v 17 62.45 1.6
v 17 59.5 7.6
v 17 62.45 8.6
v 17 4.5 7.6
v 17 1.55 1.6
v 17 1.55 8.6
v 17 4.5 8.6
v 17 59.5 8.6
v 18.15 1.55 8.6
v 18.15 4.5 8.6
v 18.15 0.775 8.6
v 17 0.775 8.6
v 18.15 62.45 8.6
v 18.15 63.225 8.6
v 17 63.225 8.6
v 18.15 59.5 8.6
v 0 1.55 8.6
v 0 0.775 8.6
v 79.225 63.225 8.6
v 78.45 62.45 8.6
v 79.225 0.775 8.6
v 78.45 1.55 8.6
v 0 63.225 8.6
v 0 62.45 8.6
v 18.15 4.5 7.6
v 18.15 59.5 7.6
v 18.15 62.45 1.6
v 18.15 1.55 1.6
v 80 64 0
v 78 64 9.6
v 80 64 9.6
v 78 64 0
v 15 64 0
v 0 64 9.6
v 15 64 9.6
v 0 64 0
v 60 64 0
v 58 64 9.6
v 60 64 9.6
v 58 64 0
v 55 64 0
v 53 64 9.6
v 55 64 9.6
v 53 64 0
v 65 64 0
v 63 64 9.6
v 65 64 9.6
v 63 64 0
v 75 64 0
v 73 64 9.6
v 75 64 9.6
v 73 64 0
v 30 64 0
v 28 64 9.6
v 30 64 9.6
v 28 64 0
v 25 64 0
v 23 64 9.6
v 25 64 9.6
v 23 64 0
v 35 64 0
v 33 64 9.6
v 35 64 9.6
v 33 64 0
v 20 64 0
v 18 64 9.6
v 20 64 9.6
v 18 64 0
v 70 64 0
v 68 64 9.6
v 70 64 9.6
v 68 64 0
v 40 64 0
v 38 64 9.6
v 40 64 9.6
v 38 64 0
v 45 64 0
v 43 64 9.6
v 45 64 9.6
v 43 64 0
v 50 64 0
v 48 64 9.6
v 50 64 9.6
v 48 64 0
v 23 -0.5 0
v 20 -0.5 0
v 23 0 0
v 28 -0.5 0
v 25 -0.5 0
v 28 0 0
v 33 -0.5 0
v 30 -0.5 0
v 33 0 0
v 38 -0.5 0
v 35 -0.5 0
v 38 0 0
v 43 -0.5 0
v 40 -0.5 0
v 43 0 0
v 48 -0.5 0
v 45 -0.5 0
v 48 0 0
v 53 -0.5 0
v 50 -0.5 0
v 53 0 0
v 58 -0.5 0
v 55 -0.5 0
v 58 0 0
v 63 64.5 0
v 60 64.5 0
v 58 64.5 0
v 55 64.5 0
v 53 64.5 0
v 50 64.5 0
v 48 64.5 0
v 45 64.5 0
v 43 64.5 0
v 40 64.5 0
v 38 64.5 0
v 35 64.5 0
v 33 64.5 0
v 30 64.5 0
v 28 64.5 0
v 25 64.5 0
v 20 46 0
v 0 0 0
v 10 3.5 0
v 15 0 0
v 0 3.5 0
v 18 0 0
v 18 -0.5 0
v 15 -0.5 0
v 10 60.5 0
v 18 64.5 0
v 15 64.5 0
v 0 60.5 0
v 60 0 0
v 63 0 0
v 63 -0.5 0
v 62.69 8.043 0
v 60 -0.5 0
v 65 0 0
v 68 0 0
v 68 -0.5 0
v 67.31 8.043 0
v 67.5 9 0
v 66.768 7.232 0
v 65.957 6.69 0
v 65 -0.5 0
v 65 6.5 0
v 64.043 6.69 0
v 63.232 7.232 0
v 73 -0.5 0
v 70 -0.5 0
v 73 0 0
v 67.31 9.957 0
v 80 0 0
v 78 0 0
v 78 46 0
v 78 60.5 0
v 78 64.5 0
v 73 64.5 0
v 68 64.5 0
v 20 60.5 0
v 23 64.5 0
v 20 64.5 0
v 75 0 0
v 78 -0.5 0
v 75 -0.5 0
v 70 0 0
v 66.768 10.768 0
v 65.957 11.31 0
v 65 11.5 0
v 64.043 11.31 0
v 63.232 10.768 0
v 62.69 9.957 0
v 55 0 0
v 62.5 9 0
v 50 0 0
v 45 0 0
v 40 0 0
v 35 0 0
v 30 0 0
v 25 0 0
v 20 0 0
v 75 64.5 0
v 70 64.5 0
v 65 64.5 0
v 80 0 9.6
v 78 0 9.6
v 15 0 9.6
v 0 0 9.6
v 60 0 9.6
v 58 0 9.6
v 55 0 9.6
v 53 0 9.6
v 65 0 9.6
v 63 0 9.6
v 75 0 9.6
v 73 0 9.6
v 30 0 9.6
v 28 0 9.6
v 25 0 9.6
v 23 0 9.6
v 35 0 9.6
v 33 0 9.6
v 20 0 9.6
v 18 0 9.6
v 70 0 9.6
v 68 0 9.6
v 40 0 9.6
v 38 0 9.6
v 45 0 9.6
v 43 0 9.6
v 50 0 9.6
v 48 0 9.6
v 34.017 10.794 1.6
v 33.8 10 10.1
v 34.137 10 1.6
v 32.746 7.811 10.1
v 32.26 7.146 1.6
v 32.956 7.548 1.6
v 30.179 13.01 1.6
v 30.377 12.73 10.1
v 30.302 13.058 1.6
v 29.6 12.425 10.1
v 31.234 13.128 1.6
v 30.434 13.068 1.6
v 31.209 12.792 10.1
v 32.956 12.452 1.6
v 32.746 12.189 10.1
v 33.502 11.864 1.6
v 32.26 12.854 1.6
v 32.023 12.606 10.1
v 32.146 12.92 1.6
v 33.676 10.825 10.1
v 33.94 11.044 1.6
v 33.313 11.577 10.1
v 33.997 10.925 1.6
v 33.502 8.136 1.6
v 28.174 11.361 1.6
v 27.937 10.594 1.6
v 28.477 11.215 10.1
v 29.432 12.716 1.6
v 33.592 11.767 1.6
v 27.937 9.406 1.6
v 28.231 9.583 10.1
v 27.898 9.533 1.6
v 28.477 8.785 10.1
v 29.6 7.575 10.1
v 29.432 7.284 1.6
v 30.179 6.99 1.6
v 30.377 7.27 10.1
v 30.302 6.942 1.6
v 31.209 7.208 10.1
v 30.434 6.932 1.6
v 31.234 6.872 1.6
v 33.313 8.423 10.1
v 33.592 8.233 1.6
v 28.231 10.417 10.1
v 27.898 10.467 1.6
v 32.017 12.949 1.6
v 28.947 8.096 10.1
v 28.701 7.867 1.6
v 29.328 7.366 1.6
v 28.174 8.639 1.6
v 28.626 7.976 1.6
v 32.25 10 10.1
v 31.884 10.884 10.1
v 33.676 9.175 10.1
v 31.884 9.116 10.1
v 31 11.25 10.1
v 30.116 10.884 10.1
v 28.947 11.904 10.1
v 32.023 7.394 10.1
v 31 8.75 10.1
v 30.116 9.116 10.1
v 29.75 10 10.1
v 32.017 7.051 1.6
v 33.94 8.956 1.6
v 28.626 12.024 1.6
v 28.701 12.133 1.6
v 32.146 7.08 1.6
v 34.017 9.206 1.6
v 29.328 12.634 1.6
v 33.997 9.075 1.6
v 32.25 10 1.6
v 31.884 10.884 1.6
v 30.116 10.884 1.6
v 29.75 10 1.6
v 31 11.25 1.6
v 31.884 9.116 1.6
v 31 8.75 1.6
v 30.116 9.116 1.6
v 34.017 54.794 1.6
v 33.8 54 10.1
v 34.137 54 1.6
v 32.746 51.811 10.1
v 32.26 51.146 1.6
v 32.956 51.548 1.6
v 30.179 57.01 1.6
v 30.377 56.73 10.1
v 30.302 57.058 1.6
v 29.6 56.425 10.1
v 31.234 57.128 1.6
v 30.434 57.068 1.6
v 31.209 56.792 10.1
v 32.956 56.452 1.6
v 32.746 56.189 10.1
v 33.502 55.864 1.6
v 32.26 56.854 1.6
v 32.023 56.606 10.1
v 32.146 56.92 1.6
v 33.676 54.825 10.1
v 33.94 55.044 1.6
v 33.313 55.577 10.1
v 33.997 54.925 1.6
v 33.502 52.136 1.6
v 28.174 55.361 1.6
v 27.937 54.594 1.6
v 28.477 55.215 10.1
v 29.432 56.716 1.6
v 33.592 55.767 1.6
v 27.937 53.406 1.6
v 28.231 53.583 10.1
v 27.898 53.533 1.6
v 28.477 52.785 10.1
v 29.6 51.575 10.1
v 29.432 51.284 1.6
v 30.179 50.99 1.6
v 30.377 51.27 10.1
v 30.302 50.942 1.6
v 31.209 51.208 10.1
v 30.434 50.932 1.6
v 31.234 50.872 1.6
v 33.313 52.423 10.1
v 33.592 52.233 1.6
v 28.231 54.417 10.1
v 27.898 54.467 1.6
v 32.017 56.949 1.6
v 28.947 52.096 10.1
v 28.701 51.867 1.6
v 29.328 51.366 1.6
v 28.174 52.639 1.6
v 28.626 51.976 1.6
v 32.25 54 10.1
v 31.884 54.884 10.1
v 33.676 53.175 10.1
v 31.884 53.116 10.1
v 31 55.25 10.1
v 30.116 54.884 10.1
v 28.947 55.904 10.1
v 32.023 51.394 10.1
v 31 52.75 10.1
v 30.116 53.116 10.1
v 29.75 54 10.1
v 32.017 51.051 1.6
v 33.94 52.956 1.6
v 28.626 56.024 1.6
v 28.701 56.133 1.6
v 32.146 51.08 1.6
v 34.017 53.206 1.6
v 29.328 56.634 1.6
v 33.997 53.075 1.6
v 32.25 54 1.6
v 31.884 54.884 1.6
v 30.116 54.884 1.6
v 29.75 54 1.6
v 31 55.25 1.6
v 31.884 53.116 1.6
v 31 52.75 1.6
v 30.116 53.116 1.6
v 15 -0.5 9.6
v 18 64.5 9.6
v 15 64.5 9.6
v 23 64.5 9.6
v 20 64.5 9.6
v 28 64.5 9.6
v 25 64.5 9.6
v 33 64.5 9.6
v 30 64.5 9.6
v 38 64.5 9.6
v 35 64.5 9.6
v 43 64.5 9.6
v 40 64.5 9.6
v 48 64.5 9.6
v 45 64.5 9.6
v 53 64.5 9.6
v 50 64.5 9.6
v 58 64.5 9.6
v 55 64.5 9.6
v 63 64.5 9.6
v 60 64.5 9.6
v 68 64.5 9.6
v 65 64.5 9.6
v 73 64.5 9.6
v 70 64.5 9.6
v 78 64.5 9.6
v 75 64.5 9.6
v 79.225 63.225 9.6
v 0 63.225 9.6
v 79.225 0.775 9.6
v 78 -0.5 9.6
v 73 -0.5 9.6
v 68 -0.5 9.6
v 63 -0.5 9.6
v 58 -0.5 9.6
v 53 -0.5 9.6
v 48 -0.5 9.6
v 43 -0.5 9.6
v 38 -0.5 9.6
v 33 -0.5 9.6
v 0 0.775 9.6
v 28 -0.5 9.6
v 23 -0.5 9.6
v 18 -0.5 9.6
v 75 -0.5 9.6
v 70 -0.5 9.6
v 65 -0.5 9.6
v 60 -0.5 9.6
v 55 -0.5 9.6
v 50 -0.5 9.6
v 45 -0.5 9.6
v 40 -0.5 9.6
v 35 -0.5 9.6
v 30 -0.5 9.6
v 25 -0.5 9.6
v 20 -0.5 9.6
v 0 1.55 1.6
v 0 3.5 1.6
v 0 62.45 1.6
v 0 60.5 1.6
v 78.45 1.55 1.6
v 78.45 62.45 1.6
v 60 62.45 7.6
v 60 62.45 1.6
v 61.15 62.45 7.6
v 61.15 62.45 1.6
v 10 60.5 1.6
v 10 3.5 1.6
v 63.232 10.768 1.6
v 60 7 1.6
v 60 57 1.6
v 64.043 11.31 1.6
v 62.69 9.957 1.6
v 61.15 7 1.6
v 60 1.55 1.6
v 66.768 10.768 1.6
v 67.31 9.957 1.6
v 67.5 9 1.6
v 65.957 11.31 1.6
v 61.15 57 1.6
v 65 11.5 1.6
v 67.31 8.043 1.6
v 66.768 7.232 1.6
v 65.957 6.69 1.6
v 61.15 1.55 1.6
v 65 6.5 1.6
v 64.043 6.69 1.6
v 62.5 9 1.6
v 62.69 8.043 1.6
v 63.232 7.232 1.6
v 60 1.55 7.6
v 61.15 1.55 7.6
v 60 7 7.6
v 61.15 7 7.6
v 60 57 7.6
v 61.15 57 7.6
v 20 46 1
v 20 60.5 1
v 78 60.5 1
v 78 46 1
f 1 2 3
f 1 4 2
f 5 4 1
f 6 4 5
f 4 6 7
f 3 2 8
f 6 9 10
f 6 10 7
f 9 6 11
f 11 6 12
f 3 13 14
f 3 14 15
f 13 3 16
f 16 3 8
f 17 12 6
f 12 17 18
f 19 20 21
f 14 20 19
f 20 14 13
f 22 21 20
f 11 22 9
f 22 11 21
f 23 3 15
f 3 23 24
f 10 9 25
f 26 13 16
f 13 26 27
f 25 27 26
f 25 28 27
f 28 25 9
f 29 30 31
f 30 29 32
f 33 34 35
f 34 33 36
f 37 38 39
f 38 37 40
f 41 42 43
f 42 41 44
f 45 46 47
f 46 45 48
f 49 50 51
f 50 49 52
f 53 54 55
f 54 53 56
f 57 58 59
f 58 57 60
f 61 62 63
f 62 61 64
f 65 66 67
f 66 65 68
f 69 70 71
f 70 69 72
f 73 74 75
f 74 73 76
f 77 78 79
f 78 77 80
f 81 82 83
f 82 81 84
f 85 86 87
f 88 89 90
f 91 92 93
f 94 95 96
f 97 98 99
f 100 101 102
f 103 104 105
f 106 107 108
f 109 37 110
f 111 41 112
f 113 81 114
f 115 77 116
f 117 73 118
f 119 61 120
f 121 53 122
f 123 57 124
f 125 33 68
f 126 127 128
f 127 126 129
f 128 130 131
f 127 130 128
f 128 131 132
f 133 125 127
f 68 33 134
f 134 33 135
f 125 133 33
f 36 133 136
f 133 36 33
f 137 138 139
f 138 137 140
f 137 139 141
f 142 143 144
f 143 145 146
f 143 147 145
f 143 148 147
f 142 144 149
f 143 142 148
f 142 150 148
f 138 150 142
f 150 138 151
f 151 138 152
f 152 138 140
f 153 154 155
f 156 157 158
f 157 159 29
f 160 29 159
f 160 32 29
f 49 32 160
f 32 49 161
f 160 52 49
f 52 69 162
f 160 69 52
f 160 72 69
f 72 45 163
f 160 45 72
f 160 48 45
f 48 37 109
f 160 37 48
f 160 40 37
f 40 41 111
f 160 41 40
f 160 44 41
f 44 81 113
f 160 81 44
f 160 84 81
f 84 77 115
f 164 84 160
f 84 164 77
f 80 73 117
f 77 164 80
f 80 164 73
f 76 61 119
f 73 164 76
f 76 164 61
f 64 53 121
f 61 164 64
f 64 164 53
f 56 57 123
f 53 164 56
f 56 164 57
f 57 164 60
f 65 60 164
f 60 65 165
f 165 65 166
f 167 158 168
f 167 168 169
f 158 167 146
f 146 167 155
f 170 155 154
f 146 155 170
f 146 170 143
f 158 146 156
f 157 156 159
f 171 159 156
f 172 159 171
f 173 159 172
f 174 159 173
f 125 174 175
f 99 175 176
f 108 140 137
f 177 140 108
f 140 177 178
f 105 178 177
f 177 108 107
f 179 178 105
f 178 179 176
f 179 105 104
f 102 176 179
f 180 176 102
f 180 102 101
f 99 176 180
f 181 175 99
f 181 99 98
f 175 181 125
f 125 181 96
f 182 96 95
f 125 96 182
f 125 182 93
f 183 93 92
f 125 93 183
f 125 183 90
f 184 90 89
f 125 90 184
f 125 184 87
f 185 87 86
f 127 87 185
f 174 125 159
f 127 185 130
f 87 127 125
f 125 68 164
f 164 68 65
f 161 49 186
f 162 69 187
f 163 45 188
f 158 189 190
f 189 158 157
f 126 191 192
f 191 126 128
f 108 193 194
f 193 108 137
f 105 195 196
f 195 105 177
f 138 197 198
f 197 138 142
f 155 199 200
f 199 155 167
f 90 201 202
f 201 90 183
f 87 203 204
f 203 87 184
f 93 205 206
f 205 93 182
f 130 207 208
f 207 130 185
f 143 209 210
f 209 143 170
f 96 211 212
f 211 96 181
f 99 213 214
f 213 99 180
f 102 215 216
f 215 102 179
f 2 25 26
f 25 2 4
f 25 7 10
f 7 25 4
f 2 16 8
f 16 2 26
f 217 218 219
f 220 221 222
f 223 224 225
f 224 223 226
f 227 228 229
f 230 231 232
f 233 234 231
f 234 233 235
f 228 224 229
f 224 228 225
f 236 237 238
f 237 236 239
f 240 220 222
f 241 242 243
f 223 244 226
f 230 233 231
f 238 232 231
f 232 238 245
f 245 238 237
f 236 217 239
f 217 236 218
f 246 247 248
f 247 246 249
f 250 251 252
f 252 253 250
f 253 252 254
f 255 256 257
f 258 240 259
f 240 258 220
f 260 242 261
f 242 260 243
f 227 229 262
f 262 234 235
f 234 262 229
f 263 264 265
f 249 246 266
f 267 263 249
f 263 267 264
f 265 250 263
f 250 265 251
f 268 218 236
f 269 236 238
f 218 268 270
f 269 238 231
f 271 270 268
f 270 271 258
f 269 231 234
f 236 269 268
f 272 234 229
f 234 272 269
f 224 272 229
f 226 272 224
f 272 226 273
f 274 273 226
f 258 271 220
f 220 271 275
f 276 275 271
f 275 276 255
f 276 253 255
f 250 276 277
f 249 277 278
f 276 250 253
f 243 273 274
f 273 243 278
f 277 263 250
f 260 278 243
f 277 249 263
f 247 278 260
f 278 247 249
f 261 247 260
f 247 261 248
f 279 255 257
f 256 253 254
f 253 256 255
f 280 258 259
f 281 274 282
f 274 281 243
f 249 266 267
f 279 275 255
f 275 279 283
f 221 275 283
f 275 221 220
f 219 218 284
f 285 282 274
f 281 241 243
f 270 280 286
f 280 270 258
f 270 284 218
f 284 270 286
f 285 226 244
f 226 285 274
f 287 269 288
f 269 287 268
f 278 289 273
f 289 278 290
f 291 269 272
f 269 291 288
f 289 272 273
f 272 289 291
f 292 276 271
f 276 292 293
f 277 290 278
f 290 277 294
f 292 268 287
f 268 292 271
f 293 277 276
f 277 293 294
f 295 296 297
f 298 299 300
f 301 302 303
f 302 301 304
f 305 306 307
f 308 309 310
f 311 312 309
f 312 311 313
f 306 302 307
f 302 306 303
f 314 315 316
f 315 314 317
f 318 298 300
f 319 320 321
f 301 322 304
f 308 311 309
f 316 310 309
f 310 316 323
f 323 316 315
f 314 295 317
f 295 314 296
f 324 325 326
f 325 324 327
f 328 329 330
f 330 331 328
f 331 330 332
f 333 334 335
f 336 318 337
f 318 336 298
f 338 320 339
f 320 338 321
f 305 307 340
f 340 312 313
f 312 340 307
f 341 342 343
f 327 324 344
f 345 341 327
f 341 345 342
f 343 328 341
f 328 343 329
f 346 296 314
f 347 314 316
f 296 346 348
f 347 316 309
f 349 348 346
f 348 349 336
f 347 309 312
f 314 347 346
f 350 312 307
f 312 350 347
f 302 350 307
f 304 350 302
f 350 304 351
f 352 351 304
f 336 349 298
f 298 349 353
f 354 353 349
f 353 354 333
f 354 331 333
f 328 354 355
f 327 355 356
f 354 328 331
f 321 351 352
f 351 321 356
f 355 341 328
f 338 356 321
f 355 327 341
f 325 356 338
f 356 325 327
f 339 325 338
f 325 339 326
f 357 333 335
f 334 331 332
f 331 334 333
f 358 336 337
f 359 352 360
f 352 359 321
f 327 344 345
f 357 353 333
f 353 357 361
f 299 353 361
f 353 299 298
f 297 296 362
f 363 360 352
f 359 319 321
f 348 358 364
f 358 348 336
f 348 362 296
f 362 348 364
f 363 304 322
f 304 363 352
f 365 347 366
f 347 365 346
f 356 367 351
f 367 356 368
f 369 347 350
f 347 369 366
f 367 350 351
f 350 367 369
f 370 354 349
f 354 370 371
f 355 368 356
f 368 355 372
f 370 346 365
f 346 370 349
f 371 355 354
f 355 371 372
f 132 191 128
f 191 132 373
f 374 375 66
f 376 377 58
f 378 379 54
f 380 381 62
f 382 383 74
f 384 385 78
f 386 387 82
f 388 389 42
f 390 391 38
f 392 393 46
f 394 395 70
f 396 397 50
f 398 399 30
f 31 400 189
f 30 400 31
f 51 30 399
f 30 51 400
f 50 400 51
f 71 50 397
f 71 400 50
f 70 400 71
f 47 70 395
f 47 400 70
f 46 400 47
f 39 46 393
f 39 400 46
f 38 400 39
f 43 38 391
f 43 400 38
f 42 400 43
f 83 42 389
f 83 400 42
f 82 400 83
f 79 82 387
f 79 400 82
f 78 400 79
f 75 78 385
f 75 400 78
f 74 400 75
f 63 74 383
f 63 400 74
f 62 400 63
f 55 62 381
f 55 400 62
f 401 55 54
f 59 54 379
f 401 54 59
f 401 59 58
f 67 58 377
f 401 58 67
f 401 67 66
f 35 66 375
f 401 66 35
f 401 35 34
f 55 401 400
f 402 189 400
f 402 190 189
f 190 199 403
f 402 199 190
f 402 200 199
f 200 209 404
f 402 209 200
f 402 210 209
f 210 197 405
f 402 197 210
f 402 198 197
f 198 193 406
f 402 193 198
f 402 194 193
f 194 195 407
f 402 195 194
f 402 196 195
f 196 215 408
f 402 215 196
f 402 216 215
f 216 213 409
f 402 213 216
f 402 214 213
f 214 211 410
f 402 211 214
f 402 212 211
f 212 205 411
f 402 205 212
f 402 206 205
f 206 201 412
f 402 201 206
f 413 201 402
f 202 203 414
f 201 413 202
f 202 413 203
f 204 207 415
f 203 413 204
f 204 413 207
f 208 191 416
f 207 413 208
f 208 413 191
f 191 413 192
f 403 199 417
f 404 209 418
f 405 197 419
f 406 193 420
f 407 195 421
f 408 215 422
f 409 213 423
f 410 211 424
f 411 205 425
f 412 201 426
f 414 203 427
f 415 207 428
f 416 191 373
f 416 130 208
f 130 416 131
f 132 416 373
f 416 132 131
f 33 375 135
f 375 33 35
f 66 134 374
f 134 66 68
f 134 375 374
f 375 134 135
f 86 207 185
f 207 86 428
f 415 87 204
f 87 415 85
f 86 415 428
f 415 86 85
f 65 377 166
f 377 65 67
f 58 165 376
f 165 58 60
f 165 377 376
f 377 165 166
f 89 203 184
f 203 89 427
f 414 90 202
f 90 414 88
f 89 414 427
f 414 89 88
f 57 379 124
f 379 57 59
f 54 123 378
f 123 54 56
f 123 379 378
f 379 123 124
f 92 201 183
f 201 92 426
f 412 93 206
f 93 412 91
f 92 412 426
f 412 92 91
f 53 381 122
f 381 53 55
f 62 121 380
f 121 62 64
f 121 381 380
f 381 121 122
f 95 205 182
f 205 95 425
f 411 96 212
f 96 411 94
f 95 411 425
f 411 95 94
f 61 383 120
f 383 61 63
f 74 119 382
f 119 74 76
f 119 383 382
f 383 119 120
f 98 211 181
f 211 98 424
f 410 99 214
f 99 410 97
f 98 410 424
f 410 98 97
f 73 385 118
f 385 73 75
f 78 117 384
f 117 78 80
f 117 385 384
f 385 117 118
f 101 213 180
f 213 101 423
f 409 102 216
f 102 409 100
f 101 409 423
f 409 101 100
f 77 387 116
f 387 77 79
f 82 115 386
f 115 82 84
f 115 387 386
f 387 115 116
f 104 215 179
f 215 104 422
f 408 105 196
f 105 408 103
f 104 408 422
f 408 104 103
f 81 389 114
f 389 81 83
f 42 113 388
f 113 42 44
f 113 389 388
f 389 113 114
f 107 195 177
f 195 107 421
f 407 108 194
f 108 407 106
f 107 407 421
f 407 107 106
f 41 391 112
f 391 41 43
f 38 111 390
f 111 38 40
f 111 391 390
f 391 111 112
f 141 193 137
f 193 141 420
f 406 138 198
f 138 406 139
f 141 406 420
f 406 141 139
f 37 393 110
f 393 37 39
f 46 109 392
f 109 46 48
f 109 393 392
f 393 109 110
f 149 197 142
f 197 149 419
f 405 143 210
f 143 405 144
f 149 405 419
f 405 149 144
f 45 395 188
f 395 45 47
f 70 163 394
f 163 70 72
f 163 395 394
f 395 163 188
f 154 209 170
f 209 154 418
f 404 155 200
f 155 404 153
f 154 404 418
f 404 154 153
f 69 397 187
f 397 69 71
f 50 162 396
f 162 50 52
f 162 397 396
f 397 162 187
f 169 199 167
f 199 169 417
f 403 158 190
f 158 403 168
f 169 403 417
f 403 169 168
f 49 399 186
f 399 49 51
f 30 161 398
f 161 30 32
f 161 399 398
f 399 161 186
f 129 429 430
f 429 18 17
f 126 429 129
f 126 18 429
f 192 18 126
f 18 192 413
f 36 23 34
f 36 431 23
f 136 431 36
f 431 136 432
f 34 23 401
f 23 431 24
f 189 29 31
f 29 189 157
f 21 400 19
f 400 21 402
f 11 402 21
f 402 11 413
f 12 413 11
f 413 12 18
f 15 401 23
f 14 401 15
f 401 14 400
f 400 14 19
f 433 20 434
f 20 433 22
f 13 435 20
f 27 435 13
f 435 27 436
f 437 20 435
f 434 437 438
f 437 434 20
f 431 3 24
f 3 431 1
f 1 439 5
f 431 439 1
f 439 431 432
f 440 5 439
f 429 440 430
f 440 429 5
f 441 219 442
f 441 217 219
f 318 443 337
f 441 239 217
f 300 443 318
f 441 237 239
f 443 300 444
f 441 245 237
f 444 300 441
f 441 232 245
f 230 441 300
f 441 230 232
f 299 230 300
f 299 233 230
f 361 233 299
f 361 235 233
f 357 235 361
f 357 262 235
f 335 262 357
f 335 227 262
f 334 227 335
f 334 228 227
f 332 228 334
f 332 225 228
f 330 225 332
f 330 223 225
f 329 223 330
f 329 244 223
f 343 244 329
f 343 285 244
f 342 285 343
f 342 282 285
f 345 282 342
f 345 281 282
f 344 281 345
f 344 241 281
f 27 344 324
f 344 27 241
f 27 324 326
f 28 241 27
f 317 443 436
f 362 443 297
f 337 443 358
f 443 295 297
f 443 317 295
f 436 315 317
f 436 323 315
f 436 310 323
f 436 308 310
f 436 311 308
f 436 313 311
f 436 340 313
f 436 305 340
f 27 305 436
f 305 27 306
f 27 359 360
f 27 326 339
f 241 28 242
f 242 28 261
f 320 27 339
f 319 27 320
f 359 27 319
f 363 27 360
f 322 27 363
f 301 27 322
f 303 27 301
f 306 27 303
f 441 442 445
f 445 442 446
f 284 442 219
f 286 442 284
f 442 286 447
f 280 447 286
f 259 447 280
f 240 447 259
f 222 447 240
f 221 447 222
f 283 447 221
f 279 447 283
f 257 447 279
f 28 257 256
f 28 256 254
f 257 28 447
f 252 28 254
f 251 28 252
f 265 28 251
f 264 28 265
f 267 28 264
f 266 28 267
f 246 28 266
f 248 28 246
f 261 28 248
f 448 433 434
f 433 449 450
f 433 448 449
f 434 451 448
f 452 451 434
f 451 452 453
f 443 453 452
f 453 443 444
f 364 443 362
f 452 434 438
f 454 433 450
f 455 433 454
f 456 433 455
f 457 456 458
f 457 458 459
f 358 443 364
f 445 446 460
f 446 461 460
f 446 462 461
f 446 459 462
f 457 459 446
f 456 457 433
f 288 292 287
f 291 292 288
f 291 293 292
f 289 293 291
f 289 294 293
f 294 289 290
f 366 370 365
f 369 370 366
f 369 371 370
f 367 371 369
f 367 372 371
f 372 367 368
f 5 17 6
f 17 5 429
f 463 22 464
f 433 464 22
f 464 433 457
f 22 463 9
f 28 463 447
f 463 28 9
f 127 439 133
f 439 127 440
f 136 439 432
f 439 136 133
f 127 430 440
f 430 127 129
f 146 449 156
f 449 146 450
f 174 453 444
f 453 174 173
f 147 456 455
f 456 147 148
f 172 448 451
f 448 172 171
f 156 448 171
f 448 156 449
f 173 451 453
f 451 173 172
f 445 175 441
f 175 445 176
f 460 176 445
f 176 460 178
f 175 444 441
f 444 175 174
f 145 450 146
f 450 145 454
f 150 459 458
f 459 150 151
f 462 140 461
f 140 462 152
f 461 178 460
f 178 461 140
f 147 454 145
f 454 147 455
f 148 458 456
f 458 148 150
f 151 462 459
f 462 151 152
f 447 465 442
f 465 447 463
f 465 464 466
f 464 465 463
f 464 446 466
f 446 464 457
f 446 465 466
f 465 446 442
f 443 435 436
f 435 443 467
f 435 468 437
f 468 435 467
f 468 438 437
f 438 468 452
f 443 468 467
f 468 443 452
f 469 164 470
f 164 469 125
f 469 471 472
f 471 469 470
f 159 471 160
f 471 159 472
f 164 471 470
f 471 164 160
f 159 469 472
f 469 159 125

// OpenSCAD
/* A8PicoCart shell
   (c) R.Edwards 2023
*/

ridge_width = 0.5;
cart_length=80;
cart_width=65 - (ridge_width*2);
cart_height=9.6;
screw_sep = 44;
front_thickness = 1.6;
sides_thickness = 1.6 - 0.05;
support_thickness = 1.2 - 0.05;
support_height = 7.6;
rim_height = 1;
logo_width = 14.5;
logo_height = 58;

difference() {
    union() {
        difference() {
            // main shell
            cube([cart_length, cart_width, cart_height]);
            // rims
            translate([0, sides_thickness/2, cart_height-rim_height])
                cube([cart_length-sides_thickness/2,
                    cart_width-sides_thickness, rim_height]);
            // make hollow
            translate([0, sides_thickness, front_thickness])
                cube([cart_length-sides_thickness,
                    cart_width-sides_thickness*2,
                    cart_height-front_thickness]);
            // cutout cart port
            translate([0, (cart_width-57)/2, 0])
                cube([10, 57, cart_height]);
            // button
            translate([cart_length-15, 9, 0])
               cylinder(h = front_thickness, r1 = 2.5, r2 = 2.5,  $fs = 1); 
        }    
        // pcb supports
        difference() {
            translate([17, 0, 0])
                cube([support_thickness, cart_width, cart_height-rim_height]);
            translate([17, (cart_width-55)/2, support_height])
                cube([support_thickness, 55, cart_height-support_height]);
        }
        translate([60, 0, 0])
            cube([support_thickness, 7, support_height]);
        translate([60, cart_width-7, 0])
            cube([support_thickness, 7, support_height]);
        // screw holes
        translate([31, (cart_width-screw_sep)/2, 0])
            difference() {
                cylinder(h = support_height + 2.5, r1 = 3.2, r2 = 2.8,  $fs = 1);
                cylinder(h = support_height + 2.5, r1 = 1.25, r2 = 1.25,  $fs = 1);
            }
        translate([31, cart_width-(cart_width-screw_sep)/2, 0])
            difference() {
                cylinder(h = support_height + 2.5, r1 = 3.2, r2 = 2.8,  $fs = 1);
                cylinder(h = support_height + 2.5, r1 = 1.25, r2 = 1.25,  $fs = 1);
            }
        // ridges
        for (i = [15: 5: cart_length-5])
            union() {
                translate([i, -ridge_width, 0])
                    cube([3, ridge_width, cart_height]);
                translate([i, cart_width, 0])
                    cube([3, ridge_width, cart_height]);
            }
    }
    // logo space
    translate([cart_length-logo_height-2, cart_width-logo_width-3.5, 0])
        cube([logo_height, logo_width, 1]);
}
